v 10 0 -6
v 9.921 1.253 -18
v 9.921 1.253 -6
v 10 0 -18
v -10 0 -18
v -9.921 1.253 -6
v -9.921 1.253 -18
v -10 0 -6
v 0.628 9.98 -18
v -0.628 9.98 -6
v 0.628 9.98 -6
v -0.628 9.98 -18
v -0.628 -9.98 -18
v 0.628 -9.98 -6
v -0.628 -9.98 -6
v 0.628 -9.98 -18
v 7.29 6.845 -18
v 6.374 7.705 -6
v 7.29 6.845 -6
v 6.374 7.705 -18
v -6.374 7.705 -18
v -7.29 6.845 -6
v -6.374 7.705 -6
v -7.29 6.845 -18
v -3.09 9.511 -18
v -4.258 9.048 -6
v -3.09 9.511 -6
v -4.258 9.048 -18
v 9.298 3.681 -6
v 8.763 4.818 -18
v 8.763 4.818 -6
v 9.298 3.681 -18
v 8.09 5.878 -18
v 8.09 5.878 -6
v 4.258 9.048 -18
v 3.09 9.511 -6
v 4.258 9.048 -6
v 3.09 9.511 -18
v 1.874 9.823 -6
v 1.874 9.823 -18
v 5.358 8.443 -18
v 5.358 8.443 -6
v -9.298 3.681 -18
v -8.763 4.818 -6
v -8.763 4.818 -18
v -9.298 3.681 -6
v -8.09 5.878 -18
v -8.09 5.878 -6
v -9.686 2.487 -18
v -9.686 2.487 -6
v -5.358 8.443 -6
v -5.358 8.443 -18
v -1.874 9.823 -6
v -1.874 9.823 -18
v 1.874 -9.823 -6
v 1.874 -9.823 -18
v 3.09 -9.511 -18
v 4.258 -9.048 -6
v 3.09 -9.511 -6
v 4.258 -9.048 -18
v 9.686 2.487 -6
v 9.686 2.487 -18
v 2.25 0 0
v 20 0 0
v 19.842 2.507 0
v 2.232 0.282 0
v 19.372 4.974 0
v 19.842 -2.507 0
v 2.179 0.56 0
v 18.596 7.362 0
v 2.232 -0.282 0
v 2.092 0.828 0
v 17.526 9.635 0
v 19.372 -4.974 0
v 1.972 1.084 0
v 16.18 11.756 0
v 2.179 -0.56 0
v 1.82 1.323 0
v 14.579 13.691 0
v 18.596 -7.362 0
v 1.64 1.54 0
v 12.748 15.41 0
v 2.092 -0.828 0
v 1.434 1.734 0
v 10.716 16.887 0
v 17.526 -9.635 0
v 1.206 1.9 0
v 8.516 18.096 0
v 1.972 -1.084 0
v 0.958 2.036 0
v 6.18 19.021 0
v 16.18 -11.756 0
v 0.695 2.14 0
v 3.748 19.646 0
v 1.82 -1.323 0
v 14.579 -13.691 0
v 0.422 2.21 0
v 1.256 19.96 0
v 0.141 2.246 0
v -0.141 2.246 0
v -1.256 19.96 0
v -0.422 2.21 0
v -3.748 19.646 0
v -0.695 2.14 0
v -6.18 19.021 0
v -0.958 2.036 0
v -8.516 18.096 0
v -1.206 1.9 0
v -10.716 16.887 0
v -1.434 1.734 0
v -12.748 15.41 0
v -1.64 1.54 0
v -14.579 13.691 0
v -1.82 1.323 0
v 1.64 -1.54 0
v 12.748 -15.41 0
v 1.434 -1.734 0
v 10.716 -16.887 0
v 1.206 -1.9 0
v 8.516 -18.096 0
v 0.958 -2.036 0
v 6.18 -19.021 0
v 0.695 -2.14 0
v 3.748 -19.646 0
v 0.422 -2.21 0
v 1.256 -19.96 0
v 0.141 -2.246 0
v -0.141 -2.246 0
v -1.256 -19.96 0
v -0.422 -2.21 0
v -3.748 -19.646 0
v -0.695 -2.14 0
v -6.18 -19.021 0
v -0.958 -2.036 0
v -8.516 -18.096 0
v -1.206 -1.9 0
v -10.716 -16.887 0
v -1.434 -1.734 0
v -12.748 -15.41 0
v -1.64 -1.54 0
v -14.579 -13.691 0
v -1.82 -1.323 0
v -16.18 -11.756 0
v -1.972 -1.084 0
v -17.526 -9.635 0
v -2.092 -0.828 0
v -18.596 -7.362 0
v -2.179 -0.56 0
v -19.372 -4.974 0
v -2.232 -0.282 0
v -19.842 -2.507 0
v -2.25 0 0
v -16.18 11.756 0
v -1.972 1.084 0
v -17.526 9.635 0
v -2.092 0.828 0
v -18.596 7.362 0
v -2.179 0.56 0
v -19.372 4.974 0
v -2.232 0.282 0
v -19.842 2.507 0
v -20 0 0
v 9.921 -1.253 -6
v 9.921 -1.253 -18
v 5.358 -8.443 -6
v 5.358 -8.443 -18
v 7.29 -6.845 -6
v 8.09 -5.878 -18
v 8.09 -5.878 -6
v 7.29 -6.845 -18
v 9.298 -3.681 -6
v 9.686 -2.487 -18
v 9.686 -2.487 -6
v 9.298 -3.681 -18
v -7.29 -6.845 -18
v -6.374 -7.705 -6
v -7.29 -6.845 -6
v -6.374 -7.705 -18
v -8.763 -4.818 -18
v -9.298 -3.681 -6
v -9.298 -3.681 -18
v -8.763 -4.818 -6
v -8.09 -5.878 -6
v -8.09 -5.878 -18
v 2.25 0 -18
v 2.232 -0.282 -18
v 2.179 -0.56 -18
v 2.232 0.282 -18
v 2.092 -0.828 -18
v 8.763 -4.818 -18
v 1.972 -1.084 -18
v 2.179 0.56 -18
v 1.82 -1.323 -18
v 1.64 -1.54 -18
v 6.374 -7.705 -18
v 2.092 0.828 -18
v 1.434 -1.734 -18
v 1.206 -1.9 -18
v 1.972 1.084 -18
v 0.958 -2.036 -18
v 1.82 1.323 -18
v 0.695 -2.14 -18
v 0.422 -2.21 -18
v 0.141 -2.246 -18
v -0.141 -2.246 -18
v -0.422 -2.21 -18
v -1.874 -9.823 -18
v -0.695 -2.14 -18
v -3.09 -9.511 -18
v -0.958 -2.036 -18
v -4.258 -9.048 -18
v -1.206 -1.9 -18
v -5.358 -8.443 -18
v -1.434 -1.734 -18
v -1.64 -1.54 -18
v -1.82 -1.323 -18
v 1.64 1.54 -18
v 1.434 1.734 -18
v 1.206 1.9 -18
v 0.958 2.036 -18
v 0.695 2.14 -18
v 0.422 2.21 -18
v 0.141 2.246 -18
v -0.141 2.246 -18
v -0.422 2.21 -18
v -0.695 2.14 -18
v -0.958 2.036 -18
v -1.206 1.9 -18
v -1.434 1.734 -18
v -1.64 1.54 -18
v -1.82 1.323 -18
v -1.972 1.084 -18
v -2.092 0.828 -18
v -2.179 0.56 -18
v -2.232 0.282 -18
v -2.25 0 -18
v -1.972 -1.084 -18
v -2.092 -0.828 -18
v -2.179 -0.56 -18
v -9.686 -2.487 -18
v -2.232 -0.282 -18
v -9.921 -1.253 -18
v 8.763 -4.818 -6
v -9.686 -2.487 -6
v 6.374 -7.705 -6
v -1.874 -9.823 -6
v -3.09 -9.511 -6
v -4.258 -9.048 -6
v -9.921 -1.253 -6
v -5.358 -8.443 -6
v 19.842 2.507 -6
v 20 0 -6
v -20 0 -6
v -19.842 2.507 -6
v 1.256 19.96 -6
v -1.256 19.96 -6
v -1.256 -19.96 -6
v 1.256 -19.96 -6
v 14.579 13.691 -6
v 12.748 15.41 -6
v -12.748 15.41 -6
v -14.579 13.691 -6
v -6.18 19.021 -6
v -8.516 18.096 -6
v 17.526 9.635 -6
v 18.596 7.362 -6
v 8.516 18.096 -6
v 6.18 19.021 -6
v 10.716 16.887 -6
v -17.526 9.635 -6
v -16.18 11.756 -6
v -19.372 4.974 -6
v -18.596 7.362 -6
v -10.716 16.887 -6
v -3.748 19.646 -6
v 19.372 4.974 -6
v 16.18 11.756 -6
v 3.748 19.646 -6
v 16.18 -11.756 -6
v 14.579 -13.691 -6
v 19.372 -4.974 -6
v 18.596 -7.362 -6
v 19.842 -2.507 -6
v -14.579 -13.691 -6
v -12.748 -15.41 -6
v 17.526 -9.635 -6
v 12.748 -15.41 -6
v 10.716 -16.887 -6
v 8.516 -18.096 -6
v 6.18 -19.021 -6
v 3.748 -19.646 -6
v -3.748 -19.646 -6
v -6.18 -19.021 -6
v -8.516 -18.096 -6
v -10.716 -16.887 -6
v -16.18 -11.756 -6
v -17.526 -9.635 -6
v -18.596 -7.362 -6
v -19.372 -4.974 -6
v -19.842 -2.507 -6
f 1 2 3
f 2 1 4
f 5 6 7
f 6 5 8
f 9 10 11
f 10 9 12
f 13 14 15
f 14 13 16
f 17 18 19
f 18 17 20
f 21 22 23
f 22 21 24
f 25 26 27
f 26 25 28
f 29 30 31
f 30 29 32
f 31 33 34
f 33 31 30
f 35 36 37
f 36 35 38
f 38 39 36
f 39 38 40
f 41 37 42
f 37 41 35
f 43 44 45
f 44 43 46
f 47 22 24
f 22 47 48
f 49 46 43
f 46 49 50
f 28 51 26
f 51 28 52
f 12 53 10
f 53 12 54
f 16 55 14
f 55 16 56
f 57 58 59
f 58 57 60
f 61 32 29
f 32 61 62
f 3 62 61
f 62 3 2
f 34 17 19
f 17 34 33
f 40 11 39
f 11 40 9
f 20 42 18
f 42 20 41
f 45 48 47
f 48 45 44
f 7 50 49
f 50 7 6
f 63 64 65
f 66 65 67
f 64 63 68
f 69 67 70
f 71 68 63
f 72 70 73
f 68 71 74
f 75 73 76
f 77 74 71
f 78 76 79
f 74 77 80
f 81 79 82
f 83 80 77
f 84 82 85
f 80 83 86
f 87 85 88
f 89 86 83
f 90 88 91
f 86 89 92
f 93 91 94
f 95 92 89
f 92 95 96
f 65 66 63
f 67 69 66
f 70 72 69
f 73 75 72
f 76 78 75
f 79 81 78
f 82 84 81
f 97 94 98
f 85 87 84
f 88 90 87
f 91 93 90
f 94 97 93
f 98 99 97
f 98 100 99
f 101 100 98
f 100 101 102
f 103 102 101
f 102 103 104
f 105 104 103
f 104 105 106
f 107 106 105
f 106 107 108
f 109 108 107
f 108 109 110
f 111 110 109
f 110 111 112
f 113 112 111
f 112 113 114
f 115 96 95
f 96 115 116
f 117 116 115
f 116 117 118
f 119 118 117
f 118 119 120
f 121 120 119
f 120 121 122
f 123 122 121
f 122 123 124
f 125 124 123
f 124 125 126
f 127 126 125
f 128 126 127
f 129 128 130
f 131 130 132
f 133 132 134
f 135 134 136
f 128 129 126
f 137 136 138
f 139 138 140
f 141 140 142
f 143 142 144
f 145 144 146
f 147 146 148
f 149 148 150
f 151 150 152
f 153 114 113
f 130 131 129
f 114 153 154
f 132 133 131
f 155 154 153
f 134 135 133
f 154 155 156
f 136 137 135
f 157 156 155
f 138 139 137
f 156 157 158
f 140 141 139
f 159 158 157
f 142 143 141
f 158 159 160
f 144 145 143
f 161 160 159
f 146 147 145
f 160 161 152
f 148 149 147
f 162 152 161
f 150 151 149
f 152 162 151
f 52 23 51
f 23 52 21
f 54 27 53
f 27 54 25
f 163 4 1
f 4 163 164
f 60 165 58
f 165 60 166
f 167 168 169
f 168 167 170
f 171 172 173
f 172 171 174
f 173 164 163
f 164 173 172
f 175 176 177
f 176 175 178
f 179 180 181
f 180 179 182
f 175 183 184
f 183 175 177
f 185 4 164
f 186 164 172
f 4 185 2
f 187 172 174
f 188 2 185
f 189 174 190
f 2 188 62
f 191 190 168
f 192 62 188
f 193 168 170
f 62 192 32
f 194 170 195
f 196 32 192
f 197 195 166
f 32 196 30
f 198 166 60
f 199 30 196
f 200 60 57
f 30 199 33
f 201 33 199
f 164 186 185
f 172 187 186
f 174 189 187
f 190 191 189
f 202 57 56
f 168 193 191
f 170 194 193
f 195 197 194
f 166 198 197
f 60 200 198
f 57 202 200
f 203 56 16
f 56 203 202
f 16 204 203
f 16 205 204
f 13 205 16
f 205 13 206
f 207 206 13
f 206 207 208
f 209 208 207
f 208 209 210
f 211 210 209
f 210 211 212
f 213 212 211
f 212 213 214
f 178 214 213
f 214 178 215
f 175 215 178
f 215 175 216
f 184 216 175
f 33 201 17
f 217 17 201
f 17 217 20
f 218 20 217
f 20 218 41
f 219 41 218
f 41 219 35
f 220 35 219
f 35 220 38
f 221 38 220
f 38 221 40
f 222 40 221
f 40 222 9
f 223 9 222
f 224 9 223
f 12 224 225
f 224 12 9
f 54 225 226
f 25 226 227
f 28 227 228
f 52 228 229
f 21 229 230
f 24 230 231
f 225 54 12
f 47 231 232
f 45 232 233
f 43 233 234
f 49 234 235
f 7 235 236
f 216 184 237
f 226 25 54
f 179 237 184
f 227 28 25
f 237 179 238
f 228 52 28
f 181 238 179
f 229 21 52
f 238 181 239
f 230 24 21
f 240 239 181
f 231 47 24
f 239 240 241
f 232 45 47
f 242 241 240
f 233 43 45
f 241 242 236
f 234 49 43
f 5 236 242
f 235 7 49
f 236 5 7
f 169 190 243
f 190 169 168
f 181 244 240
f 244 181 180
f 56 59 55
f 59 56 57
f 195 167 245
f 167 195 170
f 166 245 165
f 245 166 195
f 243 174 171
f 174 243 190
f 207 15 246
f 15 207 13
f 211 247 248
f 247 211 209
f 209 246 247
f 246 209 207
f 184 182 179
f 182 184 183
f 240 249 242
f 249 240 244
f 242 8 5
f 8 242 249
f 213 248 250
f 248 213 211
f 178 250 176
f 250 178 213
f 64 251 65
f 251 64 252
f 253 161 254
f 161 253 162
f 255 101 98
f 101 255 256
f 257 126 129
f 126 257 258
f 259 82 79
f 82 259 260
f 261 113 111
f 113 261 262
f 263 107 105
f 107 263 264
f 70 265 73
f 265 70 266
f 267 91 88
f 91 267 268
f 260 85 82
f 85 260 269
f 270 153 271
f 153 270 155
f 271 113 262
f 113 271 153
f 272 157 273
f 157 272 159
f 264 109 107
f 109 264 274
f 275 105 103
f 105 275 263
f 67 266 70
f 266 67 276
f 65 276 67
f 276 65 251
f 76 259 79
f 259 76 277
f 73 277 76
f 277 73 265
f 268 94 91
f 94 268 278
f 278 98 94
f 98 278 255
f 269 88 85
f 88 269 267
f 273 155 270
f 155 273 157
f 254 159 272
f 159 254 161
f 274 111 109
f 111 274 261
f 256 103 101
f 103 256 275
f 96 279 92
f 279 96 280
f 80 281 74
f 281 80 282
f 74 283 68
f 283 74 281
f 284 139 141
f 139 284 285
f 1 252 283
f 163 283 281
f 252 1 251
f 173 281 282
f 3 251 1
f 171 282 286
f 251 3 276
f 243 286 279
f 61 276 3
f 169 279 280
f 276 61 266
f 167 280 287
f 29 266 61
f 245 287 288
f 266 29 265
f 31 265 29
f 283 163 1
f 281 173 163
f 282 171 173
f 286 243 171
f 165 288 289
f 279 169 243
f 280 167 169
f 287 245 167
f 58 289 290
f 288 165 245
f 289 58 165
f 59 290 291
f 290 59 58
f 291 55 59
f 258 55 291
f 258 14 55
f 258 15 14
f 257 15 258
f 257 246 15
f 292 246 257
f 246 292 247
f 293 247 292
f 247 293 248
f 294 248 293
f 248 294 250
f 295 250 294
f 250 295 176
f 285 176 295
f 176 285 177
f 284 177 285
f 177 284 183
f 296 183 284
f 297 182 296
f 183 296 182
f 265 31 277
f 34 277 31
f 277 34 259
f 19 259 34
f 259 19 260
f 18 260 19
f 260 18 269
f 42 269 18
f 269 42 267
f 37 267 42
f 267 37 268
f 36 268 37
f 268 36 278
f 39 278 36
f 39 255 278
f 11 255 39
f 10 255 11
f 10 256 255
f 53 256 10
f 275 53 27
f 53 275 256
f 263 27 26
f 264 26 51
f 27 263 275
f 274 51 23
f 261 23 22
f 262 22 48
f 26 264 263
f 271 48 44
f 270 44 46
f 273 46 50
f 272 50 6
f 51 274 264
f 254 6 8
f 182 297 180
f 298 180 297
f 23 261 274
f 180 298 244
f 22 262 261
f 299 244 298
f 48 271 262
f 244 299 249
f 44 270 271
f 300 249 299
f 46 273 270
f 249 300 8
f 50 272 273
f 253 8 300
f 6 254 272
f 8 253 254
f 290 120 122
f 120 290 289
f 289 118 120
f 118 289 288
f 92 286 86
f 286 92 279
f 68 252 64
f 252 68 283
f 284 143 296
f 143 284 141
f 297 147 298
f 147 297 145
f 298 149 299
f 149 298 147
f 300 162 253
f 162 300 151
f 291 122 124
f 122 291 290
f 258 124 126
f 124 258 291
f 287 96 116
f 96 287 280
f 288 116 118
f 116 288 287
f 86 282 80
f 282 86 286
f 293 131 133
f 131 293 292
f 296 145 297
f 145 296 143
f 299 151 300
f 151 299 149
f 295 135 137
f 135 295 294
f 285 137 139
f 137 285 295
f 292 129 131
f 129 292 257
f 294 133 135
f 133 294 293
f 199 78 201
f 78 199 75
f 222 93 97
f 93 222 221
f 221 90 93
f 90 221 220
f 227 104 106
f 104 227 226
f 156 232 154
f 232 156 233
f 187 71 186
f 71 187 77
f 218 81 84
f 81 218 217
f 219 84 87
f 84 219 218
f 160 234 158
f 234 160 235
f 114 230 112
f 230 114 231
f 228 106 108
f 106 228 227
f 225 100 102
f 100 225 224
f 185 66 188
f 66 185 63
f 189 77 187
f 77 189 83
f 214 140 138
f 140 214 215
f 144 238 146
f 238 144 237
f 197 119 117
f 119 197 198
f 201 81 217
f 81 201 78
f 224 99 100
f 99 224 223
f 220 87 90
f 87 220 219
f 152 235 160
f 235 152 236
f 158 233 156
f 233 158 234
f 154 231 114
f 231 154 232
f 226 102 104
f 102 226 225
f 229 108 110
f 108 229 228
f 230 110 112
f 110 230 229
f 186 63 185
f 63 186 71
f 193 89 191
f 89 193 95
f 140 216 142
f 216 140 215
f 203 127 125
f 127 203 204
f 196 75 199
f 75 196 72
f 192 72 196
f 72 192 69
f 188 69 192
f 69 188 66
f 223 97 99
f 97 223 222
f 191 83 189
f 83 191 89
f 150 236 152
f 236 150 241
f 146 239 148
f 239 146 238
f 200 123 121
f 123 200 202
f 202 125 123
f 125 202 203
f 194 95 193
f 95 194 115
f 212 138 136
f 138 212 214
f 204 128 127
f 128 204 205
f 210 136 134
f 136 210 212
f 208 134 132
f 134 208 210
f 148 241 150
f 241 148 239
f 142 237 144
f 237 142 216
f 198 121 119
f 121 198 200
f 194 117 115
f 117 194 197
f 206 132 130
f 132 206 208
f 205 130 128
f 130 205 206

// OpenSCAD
$fn = 50;


difference() {
	union() {
		translate(v = [0, 0, -18.0000000000]) {
			cylinder(h = 18, r = 10.0000000000);
		}
		translate(v = [0, 0, -6.0000000000]) {
			cylinder(h = 6, r = 20.0000000000);
		}
	}
	union() {
		#translate(v = [0, 0, -18]) {
			cylinder(h = 18, r = 2.2500000000);
		}
	}
}
